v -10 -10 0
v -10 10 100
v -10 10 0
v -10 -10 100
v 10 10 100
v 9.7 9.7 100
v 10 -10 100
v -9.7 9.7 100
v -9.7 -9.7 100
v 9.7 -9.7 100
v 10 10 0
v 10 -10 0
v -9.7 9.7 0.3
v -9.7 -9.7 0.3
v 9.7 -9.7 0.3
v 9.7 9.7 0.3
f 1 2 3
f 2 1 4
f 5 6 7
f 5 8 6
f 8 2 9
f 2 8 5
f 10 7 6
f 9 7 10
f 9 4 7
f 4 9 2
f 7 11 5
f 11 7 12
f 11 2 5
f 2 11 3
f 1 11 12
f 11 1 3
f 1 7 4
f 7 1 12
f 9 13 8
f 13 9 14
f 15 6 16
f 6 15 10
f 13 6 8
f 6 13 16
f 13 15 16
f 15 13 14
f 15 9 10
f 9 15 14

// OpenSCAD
module hollow_tower(towerHeight=100, towerWidth=20, wallWidth=0.3, baseHeight=0.3) {
    translate([0, 0, towerHeight/2]) difference() {
        cube([towerWidth, towerWidth, towerHeight], center=true);
        translate([0, 0, baseHeight]) 
            cube([towerWidth-2*wallWidth, towerWidth-2*wallWidth, towerHeight], center=true);
    }
}

hollow_tower();
